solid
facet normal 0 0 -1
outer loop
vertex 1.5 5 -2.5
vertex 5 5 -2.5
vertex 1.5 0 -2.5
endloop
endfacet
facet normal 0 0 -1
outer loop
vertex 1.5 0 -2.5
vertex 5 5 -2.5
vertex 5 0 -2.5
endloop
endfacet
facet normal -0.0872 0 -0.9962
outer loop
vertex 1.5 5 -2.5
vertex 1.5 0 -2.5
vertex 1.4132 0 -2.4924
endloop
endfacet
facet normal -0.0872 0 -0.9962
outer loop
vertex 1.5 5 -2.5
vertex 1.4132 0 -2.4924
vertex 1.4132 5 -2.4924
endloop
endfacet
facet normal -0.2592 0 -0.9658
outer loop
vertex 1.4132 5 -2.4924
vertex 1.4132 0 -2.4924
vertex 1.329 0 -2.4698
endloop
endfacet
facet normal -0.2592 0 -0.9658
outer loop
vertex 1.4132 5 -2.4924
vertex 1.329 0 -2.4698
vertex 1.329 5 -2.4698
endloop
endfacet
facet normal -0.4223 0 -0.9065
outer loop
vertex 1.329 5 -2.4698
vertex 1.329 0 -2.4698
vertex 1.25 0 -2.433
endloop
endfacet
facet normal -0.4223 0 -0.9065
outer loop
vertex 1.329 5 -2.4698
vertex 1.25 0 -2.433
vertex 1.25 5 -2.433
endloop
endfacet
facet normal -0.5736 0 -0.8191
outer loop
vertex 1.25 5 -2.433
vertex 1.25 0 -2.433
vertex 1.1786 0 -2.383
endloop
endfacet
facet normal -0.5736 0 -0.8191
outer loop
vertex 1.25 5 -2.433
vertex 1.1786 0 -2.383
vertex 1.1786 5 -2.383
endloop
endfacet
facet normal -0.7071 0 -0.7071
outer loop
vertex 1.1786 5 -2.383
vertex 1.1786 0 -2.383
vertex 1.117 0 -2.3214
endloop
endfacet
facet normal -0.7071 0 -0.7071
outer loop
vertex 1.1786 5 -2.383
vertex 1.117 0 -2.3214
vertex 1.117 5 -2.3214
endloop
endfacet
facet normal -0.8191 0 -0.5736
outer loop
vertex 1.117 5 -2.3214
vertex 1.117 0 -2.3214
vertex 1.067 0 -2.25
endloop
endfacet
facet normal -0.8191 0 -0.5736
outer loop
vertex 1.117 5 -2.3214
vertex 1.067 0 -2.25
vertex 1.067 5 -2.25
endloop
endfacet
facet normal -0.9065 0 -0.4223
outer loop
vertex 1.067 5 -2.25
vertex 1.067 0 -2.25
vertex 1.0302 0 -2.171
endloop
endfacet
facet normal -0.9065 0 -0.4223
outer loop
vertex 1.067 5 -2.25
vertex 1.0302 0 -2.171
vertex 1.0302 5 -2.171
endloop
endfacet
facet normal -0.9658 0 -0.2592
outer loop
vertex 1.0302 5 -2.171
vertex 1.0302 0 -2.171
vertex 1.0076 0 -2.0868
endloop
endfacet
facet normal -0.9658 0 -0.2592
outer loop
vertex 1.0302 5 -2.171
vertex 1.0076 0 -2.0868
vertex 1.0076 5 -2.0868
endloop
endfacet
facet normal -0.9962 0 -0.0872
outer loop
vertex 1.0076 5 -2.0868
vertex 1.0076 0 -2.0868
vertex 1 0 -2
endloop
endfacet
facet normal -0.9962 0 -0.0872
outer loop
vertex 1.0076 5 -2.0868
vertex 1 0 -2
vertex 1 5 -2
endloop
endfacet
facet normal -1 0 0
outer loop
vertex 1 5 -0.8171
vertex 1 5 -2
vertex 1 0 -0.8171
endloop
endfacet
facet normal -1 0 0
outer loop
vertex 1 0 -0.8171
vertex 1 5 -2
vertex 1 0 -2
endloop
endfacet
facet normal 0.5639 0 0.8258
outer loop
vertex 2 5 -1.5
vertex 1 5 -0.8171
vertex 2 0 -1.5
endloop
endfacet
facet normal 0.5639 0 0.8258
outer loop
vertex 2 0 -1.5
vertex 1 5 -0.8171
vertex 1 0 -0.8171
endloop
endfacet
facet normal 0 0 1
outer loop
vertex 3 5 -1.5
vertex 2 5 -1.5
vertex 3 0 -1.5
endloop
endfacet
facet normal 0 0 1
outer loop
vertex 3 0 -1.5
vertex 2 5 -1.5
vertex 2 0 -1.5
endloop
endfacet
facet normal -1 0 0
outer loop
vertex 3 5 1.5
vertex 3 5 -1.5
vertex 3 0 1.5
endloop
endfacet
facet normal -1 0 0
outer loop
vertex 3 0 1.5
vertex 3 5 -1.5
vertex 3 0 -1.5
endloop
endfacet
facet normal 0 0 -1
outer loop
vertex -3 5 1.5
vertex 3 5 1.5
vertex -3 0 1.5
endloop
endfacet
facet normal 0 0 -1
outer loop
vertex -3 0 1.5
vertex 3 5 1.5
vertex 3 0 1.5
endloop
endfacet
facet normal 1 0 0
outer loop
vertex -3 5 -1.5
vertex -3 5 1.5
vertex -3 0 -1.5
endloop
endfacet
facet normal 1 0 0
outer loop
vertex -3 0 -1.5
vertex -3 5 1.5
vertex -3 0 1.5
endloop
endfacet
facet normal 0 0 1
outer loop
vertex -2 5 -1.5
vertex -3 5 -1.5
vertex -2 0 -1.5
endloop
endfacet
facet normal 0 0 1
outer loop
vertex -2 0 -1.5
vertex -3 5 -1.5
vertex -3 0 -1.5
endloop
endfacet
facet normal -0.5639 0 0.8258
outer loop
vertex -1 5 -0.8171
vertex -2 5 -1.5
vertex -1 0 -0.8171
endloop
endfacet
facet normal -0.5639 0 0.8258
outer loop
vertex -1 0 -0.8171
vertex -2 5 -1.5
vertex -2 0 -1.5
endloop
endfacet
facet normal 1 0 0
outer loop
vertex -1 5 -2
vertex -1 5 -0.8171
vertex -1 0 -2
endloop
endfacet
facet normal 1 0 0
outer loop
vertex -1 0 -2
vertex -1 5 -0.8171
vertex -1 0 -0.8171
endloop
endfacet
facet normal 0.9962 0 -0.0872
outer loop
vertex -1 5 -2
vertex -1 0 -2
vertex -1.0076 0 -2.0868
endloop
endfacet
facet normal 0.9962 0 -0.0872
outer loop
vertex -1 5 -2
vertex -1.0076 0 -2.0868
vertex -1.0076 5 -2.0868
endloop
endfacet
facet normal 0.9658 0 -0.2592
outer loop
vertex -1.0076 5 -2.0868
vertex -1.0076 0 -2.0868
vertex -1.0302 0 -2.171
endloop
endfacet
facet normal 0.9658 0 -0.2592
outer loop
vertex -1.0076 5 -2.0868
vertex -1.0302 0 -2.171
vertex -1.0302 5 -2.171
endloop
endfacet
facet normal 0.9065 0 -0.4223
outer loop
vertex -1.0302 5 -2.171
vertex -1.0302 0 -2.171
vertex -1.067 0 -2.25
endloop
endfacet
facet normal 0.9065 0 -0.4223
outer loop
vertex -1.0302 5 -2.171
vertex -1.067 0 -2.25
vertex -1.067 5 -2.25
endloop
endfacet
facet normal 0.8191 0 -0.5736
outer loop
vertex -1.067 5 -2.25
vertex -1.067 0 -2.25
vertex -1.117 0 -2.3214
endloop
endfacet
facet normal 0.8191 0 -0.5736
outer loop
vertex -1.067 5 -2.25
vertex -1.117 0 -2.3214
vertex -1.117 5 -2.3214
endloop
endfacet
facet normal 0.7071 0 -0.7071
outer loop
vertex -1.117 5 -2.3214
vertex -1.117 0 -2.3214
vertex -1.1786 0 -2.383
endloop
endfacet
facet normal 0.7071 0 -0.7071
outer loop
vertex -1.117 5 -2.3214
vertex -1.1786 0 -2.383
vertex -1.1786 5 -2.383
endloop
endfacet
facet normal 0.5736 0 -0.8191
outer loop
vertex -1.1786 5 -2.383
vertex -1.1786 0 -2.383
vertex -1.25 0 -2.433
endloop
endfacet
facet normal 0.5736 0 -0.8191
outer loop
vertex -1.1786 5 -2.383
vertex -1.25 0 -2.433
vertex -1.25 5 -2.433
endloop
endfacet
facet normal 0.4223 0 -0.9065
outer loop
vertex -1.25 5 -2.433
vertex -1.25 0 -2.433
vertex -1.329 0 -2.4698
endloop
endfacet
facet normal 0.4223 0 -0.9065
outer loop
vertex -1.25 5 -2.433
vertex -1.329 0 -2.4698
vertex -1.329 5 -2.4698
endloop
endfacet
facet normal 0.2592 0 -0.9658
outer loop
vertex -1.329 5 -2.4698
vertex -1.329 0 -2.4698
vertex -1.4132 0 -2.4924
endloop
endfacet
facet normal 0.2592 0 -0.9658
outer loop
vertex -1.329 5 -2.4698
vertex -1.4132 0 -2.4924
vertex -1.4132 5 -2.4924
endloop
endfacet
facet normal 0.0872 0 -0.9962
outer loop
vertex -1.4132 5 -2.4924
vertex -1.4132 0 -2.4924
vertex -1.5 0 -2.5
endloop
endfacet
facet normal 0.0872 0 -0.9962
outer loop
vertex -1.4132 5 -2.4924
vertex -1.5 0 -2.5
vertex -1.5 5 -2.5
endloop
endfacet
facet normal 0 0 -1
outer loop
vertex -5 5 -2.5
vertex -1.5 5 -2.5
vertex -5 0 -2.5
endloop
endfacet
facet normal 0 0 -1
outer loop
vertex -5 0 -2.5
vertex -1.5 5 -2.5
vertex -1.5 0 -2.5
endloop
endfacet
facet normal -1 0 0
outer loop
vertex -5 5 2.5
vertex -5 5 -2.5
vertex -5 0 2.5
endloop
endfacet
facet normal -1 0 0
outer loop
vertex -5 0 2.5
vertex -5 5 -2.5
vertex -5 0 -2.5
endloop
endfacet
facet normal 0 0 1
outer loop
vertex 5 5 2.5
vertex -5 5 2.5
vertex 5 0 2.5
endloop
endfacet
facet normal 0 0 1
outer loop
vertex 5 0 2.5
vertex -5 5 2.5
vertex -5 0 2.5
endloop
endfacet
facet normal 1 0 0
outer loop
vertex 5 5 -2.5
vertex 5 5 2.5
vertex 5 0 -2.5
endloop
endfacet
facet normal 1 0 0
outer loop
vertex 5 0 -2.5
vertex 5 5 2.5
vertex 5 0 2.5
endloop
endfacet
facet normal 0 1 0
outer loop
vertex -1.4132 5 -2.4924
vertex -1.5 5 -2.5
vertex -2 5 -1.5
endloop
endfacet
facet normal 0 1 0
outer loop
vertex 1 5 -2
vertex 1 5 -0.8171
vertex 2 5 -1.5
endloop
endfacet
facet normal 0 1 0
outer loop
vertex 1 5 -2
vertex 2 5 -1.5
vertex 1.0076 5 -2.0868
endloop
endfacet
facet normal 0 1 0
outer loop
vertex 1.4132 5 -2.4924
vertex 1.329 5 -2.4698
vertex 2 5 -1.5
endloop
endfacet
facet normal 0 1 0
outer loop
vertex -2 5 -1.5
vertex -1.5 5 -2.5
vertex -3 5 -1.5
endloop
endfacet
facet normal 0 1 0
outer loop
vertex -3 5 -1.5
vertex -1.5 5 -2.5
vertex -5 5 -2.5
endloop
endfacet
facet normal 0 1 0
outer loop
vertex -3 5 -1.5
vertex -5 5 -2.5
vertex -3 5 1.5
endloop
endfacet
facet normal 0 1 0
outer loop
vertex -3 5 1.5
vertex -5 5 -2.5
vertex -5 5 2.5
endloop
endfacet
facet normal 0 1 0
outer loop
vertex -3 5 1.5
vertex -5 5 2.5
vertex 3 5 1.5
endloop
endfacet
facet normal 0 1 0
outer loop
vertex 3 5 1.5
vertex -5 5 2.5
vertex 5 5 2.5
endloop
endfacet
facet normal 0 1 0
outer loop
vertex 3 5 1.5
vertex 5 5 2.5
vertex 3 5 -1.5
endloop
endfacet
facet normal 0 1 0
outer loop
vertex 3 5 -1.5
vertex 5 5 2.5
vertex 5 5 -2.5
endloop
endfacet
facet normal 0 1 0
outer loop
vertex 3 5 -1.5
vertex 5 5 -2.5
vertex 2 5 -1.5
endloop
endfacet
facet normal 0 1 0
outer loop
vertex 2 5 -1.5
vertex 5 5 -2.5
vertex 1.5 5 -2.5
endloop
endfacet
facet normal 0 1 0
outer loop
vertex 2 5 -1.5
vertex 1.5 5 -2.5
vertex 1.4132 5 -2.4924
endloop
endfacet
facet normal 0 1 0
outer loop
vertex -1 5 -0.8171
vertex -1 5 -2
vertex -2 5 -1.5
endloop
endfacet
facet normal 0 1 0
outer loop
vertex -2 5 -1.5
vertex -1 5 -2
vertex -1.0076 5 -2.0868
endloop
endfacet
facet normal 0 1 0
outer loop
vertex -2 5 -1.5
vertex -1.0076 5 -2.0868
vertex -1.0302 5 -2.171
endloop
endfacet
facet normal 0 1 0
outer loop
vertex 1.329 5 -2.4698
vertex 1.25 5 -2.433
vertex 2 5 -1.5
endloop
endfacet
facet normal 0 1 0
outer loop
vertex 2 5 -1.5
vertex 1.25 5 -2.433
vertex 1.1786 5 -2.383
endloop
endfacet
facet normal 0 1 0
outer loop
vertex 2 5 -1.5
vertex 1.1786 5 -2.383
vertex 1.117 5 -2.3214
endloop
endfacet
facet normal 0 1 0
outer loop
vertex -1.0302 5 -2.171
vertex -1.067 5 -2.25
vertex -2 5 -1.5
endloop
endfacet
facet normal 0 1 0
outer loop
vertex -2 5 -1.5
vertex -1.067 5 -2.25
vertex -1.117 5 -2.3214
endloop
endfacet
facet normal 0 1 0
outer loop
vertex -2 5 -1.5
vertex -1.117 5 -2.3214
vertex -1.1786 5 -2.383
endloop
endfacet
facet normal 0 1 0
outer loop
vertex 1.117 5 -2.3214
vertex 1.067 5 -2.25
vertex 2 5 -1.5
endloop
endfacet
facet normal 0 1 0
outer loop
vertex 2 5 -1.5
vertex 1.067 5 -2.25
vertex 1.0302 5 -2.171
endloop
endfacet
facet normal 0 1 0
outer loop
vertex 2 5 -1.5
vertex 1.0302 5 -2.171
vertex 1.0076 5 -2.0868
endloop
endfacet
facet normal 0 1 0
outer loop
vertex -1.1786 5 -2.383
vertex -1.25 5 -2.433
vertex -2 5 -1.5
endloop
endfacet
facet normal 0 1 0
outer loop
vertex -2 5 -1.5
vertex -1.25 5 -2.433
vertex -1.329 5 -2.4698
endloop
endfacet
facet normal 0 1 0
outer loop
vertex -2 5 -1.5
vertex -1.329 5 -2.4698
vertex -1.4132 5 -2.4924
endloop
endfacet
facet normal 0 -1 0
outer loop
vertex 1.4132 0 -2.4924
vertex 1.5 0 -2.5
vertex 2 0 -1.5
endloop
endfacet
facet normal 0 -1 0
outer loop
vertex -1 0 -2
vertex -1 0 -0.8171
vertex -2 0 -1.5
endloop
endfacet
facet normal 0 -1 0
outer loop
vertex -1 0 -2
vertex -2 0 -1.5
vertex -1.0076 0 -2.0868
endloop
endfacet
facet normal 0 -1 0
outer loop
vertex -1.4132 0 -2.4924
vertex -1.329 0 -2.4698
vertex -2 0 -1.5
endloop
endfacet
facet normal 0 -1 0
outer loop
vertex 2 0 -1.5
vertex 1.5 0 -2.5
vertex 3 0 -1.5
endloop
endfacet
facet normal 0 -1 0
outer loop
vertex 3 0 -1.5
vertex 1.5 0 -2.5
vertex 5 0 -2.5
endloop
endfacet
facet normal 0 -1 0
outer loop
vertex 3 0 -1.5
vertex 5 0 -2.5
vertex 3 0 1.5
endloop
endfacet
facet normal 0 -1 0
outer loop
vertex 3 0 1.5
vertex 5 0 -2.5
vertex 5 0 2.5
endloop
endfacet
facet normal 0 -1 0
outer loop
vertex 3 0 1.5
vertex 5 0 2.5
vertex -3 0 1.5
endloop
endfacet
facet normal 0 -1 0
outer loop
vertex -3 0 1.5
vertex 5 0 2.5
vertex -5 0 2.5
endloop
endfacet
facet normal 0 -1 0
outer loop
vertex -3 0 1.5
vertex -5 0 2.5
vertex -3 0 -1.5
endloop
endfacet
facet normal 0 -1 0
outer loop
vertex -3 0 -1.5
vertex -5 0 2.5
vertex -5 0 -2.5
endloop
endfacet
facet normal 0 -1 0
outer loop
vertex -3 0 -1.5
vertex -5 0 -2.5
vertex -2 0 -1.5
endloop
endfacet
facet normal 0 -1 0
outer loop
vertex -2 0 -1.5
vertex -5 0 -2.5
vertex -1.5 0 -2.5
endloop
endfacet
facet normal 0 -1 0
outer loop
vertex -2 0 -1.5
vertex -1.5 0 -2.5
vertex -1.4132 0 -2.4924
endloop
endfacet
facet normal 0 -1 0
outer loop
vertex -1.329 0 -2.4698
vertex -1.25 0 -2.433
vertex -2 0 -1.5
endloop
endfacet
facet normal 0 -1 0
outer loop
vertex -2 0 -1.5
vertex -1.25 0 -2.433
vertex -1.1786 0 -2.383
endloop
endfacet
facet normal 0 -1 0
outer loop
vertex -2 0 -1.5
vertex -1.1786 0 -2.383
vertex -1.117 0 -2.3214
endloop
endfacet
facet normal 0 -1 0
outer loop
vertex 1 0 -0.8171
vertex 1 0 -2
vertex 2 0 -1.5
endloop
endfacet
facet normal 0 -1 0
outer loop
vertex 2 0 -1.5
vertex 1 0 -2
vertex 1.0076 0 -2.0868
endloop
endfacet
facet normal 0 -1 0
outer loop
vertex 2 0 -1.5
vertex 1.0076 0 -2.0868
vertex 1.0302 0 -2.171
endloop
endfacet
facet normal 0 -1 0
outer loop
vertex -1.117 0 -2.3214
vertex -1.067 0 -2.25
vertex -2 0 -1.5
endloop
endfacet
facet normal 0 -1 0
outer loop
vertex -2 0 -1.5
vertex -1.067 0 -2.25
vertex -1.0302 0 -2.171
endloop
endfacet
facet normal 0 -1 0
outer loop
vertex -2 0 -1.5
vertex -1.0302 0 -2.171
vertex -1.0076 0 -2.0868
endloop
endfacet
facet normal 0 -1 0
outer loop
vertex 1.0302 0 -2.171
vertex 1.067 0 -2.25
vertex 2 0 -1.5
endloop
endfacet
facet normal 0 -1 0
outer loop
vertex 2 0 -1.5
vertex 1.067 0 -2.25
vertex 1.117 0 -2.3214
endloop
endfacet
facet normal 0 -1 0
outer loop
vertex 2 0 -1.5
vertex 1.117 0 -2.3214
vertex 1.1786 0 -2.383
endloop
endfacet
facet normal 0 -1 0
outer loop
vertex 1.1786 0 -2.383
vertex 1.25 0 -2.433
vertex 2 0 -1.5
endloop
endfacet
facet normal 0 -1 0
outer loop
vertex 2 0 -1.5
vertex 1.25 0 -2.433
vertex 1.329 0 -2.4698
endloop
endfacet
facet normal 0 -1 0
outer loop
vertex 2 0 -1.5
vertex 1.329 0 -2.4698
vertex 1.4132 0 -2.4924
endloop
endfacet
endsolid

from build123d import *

# Parameters (mm, degrees)
BOSS_EXTRUDE1_DEPTH = 5


with BuildPart() as part:
    # Sketch1 → Boss-Extrude1 (new body)
    with BuildSketch(Plane(origin=(0, 0, 0), x_dir=(1, 0, 0), z_dir=(0, 1, 0))):
        with BuildLine():
            Line((1, 1.5), (1, 0.817081844))
            Line((1, 0.817081844), (2, 1.5))
            Line((2, 1.5), (3, 1.5))
            Line((3, 1.5), (3, -1.5))
            Line((3, -1.5), (-3, -1.5))
            Line((-3, -1.5), (-3, 1.5))
            Line((-3, 1.5), (-2, 1.5))
            Line((-2, 1.5), (-1, 0.817081844))
            Line((-1, 0.817081844), (-1, 1.5))
            Line((-1, 1.5), (-1, 2))
            ThreePointArc((-1, 2), (-1.146446609, 2.353553391), (-1.5, 2.5))
            Line((-1.5, 2.5), (-5, 2.5))
            Line((-5, 2.5), (-5, -2.5))
            Line((-5, -2.5), (5, -2.5))
            Line((5, -2.5), (5, 2.5))
            Line((5, 2.5), (1.5, 2.5))
            ThreePointArc((1.5, 2.5), (1.146446609, 2.353553391), (1, 2))
            Line((1, 2), (1, 1.5))
        make_face()
    extrude(amount=BOSS_EXTRUDE1_DEPTH)


solid = part.part
